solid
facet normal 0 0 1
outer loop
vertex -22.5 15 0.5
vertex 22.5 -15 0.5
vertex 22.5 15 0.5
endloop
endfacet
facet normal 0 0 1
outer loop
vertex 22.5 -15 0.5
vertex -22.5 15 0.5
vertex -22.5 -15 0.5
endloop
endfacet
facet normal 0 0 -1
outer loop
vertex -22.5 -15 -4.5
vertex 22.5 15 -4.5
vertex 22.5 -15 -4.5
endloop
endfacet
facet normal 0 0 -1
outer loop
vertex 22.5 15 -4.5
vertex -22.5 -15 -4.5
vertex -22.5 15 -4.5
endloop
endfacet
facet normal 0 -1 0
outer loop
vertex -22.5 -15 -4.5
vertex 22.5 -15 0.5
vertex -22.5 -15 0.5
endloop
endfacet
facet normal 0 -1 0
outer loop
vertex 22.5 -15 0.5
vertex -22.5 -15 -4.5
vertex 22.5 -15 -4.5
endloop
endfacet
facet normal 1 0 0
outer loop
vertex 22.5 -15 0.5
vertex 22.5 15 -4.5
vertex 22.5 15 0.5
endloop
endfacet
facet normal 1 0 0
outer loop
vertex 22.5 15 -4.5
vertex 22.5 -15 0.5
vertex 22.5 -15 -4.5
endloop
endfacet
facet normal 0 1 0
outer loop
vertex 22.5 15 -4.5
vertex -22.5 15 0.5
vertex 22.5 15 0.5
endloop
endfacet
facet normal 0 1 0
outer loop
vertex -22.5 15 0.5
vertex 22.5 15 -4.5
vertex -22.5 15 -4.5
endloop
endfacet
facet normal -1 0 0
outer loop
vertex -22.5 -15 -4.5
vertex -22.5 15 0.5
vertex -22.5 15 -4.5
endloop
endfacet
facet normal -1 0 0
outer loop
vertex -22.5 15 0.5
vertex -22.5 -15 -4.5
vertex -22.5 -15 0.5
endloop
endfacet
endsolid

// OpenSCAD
// Define dimensions for the rectangular block
length = 45;  // Adjusted length to match the original model
width = 30;   // Width remains consistent
thickness = 5; // Thickness remains consistent

// Adjusted position offset to align with the original model
x_offset = 0;  // X-axis offset
y_offset = 0;  // Y-axis offset
z_offset = -2; // Z-axis offset

// Create the rectangular block
module rectangular_block() {
    translate([x_offset, y_offset, z_offset]) {
        cube([length, width, thickness], center = true);
    }
}

// Render the model
rectangular_block();
